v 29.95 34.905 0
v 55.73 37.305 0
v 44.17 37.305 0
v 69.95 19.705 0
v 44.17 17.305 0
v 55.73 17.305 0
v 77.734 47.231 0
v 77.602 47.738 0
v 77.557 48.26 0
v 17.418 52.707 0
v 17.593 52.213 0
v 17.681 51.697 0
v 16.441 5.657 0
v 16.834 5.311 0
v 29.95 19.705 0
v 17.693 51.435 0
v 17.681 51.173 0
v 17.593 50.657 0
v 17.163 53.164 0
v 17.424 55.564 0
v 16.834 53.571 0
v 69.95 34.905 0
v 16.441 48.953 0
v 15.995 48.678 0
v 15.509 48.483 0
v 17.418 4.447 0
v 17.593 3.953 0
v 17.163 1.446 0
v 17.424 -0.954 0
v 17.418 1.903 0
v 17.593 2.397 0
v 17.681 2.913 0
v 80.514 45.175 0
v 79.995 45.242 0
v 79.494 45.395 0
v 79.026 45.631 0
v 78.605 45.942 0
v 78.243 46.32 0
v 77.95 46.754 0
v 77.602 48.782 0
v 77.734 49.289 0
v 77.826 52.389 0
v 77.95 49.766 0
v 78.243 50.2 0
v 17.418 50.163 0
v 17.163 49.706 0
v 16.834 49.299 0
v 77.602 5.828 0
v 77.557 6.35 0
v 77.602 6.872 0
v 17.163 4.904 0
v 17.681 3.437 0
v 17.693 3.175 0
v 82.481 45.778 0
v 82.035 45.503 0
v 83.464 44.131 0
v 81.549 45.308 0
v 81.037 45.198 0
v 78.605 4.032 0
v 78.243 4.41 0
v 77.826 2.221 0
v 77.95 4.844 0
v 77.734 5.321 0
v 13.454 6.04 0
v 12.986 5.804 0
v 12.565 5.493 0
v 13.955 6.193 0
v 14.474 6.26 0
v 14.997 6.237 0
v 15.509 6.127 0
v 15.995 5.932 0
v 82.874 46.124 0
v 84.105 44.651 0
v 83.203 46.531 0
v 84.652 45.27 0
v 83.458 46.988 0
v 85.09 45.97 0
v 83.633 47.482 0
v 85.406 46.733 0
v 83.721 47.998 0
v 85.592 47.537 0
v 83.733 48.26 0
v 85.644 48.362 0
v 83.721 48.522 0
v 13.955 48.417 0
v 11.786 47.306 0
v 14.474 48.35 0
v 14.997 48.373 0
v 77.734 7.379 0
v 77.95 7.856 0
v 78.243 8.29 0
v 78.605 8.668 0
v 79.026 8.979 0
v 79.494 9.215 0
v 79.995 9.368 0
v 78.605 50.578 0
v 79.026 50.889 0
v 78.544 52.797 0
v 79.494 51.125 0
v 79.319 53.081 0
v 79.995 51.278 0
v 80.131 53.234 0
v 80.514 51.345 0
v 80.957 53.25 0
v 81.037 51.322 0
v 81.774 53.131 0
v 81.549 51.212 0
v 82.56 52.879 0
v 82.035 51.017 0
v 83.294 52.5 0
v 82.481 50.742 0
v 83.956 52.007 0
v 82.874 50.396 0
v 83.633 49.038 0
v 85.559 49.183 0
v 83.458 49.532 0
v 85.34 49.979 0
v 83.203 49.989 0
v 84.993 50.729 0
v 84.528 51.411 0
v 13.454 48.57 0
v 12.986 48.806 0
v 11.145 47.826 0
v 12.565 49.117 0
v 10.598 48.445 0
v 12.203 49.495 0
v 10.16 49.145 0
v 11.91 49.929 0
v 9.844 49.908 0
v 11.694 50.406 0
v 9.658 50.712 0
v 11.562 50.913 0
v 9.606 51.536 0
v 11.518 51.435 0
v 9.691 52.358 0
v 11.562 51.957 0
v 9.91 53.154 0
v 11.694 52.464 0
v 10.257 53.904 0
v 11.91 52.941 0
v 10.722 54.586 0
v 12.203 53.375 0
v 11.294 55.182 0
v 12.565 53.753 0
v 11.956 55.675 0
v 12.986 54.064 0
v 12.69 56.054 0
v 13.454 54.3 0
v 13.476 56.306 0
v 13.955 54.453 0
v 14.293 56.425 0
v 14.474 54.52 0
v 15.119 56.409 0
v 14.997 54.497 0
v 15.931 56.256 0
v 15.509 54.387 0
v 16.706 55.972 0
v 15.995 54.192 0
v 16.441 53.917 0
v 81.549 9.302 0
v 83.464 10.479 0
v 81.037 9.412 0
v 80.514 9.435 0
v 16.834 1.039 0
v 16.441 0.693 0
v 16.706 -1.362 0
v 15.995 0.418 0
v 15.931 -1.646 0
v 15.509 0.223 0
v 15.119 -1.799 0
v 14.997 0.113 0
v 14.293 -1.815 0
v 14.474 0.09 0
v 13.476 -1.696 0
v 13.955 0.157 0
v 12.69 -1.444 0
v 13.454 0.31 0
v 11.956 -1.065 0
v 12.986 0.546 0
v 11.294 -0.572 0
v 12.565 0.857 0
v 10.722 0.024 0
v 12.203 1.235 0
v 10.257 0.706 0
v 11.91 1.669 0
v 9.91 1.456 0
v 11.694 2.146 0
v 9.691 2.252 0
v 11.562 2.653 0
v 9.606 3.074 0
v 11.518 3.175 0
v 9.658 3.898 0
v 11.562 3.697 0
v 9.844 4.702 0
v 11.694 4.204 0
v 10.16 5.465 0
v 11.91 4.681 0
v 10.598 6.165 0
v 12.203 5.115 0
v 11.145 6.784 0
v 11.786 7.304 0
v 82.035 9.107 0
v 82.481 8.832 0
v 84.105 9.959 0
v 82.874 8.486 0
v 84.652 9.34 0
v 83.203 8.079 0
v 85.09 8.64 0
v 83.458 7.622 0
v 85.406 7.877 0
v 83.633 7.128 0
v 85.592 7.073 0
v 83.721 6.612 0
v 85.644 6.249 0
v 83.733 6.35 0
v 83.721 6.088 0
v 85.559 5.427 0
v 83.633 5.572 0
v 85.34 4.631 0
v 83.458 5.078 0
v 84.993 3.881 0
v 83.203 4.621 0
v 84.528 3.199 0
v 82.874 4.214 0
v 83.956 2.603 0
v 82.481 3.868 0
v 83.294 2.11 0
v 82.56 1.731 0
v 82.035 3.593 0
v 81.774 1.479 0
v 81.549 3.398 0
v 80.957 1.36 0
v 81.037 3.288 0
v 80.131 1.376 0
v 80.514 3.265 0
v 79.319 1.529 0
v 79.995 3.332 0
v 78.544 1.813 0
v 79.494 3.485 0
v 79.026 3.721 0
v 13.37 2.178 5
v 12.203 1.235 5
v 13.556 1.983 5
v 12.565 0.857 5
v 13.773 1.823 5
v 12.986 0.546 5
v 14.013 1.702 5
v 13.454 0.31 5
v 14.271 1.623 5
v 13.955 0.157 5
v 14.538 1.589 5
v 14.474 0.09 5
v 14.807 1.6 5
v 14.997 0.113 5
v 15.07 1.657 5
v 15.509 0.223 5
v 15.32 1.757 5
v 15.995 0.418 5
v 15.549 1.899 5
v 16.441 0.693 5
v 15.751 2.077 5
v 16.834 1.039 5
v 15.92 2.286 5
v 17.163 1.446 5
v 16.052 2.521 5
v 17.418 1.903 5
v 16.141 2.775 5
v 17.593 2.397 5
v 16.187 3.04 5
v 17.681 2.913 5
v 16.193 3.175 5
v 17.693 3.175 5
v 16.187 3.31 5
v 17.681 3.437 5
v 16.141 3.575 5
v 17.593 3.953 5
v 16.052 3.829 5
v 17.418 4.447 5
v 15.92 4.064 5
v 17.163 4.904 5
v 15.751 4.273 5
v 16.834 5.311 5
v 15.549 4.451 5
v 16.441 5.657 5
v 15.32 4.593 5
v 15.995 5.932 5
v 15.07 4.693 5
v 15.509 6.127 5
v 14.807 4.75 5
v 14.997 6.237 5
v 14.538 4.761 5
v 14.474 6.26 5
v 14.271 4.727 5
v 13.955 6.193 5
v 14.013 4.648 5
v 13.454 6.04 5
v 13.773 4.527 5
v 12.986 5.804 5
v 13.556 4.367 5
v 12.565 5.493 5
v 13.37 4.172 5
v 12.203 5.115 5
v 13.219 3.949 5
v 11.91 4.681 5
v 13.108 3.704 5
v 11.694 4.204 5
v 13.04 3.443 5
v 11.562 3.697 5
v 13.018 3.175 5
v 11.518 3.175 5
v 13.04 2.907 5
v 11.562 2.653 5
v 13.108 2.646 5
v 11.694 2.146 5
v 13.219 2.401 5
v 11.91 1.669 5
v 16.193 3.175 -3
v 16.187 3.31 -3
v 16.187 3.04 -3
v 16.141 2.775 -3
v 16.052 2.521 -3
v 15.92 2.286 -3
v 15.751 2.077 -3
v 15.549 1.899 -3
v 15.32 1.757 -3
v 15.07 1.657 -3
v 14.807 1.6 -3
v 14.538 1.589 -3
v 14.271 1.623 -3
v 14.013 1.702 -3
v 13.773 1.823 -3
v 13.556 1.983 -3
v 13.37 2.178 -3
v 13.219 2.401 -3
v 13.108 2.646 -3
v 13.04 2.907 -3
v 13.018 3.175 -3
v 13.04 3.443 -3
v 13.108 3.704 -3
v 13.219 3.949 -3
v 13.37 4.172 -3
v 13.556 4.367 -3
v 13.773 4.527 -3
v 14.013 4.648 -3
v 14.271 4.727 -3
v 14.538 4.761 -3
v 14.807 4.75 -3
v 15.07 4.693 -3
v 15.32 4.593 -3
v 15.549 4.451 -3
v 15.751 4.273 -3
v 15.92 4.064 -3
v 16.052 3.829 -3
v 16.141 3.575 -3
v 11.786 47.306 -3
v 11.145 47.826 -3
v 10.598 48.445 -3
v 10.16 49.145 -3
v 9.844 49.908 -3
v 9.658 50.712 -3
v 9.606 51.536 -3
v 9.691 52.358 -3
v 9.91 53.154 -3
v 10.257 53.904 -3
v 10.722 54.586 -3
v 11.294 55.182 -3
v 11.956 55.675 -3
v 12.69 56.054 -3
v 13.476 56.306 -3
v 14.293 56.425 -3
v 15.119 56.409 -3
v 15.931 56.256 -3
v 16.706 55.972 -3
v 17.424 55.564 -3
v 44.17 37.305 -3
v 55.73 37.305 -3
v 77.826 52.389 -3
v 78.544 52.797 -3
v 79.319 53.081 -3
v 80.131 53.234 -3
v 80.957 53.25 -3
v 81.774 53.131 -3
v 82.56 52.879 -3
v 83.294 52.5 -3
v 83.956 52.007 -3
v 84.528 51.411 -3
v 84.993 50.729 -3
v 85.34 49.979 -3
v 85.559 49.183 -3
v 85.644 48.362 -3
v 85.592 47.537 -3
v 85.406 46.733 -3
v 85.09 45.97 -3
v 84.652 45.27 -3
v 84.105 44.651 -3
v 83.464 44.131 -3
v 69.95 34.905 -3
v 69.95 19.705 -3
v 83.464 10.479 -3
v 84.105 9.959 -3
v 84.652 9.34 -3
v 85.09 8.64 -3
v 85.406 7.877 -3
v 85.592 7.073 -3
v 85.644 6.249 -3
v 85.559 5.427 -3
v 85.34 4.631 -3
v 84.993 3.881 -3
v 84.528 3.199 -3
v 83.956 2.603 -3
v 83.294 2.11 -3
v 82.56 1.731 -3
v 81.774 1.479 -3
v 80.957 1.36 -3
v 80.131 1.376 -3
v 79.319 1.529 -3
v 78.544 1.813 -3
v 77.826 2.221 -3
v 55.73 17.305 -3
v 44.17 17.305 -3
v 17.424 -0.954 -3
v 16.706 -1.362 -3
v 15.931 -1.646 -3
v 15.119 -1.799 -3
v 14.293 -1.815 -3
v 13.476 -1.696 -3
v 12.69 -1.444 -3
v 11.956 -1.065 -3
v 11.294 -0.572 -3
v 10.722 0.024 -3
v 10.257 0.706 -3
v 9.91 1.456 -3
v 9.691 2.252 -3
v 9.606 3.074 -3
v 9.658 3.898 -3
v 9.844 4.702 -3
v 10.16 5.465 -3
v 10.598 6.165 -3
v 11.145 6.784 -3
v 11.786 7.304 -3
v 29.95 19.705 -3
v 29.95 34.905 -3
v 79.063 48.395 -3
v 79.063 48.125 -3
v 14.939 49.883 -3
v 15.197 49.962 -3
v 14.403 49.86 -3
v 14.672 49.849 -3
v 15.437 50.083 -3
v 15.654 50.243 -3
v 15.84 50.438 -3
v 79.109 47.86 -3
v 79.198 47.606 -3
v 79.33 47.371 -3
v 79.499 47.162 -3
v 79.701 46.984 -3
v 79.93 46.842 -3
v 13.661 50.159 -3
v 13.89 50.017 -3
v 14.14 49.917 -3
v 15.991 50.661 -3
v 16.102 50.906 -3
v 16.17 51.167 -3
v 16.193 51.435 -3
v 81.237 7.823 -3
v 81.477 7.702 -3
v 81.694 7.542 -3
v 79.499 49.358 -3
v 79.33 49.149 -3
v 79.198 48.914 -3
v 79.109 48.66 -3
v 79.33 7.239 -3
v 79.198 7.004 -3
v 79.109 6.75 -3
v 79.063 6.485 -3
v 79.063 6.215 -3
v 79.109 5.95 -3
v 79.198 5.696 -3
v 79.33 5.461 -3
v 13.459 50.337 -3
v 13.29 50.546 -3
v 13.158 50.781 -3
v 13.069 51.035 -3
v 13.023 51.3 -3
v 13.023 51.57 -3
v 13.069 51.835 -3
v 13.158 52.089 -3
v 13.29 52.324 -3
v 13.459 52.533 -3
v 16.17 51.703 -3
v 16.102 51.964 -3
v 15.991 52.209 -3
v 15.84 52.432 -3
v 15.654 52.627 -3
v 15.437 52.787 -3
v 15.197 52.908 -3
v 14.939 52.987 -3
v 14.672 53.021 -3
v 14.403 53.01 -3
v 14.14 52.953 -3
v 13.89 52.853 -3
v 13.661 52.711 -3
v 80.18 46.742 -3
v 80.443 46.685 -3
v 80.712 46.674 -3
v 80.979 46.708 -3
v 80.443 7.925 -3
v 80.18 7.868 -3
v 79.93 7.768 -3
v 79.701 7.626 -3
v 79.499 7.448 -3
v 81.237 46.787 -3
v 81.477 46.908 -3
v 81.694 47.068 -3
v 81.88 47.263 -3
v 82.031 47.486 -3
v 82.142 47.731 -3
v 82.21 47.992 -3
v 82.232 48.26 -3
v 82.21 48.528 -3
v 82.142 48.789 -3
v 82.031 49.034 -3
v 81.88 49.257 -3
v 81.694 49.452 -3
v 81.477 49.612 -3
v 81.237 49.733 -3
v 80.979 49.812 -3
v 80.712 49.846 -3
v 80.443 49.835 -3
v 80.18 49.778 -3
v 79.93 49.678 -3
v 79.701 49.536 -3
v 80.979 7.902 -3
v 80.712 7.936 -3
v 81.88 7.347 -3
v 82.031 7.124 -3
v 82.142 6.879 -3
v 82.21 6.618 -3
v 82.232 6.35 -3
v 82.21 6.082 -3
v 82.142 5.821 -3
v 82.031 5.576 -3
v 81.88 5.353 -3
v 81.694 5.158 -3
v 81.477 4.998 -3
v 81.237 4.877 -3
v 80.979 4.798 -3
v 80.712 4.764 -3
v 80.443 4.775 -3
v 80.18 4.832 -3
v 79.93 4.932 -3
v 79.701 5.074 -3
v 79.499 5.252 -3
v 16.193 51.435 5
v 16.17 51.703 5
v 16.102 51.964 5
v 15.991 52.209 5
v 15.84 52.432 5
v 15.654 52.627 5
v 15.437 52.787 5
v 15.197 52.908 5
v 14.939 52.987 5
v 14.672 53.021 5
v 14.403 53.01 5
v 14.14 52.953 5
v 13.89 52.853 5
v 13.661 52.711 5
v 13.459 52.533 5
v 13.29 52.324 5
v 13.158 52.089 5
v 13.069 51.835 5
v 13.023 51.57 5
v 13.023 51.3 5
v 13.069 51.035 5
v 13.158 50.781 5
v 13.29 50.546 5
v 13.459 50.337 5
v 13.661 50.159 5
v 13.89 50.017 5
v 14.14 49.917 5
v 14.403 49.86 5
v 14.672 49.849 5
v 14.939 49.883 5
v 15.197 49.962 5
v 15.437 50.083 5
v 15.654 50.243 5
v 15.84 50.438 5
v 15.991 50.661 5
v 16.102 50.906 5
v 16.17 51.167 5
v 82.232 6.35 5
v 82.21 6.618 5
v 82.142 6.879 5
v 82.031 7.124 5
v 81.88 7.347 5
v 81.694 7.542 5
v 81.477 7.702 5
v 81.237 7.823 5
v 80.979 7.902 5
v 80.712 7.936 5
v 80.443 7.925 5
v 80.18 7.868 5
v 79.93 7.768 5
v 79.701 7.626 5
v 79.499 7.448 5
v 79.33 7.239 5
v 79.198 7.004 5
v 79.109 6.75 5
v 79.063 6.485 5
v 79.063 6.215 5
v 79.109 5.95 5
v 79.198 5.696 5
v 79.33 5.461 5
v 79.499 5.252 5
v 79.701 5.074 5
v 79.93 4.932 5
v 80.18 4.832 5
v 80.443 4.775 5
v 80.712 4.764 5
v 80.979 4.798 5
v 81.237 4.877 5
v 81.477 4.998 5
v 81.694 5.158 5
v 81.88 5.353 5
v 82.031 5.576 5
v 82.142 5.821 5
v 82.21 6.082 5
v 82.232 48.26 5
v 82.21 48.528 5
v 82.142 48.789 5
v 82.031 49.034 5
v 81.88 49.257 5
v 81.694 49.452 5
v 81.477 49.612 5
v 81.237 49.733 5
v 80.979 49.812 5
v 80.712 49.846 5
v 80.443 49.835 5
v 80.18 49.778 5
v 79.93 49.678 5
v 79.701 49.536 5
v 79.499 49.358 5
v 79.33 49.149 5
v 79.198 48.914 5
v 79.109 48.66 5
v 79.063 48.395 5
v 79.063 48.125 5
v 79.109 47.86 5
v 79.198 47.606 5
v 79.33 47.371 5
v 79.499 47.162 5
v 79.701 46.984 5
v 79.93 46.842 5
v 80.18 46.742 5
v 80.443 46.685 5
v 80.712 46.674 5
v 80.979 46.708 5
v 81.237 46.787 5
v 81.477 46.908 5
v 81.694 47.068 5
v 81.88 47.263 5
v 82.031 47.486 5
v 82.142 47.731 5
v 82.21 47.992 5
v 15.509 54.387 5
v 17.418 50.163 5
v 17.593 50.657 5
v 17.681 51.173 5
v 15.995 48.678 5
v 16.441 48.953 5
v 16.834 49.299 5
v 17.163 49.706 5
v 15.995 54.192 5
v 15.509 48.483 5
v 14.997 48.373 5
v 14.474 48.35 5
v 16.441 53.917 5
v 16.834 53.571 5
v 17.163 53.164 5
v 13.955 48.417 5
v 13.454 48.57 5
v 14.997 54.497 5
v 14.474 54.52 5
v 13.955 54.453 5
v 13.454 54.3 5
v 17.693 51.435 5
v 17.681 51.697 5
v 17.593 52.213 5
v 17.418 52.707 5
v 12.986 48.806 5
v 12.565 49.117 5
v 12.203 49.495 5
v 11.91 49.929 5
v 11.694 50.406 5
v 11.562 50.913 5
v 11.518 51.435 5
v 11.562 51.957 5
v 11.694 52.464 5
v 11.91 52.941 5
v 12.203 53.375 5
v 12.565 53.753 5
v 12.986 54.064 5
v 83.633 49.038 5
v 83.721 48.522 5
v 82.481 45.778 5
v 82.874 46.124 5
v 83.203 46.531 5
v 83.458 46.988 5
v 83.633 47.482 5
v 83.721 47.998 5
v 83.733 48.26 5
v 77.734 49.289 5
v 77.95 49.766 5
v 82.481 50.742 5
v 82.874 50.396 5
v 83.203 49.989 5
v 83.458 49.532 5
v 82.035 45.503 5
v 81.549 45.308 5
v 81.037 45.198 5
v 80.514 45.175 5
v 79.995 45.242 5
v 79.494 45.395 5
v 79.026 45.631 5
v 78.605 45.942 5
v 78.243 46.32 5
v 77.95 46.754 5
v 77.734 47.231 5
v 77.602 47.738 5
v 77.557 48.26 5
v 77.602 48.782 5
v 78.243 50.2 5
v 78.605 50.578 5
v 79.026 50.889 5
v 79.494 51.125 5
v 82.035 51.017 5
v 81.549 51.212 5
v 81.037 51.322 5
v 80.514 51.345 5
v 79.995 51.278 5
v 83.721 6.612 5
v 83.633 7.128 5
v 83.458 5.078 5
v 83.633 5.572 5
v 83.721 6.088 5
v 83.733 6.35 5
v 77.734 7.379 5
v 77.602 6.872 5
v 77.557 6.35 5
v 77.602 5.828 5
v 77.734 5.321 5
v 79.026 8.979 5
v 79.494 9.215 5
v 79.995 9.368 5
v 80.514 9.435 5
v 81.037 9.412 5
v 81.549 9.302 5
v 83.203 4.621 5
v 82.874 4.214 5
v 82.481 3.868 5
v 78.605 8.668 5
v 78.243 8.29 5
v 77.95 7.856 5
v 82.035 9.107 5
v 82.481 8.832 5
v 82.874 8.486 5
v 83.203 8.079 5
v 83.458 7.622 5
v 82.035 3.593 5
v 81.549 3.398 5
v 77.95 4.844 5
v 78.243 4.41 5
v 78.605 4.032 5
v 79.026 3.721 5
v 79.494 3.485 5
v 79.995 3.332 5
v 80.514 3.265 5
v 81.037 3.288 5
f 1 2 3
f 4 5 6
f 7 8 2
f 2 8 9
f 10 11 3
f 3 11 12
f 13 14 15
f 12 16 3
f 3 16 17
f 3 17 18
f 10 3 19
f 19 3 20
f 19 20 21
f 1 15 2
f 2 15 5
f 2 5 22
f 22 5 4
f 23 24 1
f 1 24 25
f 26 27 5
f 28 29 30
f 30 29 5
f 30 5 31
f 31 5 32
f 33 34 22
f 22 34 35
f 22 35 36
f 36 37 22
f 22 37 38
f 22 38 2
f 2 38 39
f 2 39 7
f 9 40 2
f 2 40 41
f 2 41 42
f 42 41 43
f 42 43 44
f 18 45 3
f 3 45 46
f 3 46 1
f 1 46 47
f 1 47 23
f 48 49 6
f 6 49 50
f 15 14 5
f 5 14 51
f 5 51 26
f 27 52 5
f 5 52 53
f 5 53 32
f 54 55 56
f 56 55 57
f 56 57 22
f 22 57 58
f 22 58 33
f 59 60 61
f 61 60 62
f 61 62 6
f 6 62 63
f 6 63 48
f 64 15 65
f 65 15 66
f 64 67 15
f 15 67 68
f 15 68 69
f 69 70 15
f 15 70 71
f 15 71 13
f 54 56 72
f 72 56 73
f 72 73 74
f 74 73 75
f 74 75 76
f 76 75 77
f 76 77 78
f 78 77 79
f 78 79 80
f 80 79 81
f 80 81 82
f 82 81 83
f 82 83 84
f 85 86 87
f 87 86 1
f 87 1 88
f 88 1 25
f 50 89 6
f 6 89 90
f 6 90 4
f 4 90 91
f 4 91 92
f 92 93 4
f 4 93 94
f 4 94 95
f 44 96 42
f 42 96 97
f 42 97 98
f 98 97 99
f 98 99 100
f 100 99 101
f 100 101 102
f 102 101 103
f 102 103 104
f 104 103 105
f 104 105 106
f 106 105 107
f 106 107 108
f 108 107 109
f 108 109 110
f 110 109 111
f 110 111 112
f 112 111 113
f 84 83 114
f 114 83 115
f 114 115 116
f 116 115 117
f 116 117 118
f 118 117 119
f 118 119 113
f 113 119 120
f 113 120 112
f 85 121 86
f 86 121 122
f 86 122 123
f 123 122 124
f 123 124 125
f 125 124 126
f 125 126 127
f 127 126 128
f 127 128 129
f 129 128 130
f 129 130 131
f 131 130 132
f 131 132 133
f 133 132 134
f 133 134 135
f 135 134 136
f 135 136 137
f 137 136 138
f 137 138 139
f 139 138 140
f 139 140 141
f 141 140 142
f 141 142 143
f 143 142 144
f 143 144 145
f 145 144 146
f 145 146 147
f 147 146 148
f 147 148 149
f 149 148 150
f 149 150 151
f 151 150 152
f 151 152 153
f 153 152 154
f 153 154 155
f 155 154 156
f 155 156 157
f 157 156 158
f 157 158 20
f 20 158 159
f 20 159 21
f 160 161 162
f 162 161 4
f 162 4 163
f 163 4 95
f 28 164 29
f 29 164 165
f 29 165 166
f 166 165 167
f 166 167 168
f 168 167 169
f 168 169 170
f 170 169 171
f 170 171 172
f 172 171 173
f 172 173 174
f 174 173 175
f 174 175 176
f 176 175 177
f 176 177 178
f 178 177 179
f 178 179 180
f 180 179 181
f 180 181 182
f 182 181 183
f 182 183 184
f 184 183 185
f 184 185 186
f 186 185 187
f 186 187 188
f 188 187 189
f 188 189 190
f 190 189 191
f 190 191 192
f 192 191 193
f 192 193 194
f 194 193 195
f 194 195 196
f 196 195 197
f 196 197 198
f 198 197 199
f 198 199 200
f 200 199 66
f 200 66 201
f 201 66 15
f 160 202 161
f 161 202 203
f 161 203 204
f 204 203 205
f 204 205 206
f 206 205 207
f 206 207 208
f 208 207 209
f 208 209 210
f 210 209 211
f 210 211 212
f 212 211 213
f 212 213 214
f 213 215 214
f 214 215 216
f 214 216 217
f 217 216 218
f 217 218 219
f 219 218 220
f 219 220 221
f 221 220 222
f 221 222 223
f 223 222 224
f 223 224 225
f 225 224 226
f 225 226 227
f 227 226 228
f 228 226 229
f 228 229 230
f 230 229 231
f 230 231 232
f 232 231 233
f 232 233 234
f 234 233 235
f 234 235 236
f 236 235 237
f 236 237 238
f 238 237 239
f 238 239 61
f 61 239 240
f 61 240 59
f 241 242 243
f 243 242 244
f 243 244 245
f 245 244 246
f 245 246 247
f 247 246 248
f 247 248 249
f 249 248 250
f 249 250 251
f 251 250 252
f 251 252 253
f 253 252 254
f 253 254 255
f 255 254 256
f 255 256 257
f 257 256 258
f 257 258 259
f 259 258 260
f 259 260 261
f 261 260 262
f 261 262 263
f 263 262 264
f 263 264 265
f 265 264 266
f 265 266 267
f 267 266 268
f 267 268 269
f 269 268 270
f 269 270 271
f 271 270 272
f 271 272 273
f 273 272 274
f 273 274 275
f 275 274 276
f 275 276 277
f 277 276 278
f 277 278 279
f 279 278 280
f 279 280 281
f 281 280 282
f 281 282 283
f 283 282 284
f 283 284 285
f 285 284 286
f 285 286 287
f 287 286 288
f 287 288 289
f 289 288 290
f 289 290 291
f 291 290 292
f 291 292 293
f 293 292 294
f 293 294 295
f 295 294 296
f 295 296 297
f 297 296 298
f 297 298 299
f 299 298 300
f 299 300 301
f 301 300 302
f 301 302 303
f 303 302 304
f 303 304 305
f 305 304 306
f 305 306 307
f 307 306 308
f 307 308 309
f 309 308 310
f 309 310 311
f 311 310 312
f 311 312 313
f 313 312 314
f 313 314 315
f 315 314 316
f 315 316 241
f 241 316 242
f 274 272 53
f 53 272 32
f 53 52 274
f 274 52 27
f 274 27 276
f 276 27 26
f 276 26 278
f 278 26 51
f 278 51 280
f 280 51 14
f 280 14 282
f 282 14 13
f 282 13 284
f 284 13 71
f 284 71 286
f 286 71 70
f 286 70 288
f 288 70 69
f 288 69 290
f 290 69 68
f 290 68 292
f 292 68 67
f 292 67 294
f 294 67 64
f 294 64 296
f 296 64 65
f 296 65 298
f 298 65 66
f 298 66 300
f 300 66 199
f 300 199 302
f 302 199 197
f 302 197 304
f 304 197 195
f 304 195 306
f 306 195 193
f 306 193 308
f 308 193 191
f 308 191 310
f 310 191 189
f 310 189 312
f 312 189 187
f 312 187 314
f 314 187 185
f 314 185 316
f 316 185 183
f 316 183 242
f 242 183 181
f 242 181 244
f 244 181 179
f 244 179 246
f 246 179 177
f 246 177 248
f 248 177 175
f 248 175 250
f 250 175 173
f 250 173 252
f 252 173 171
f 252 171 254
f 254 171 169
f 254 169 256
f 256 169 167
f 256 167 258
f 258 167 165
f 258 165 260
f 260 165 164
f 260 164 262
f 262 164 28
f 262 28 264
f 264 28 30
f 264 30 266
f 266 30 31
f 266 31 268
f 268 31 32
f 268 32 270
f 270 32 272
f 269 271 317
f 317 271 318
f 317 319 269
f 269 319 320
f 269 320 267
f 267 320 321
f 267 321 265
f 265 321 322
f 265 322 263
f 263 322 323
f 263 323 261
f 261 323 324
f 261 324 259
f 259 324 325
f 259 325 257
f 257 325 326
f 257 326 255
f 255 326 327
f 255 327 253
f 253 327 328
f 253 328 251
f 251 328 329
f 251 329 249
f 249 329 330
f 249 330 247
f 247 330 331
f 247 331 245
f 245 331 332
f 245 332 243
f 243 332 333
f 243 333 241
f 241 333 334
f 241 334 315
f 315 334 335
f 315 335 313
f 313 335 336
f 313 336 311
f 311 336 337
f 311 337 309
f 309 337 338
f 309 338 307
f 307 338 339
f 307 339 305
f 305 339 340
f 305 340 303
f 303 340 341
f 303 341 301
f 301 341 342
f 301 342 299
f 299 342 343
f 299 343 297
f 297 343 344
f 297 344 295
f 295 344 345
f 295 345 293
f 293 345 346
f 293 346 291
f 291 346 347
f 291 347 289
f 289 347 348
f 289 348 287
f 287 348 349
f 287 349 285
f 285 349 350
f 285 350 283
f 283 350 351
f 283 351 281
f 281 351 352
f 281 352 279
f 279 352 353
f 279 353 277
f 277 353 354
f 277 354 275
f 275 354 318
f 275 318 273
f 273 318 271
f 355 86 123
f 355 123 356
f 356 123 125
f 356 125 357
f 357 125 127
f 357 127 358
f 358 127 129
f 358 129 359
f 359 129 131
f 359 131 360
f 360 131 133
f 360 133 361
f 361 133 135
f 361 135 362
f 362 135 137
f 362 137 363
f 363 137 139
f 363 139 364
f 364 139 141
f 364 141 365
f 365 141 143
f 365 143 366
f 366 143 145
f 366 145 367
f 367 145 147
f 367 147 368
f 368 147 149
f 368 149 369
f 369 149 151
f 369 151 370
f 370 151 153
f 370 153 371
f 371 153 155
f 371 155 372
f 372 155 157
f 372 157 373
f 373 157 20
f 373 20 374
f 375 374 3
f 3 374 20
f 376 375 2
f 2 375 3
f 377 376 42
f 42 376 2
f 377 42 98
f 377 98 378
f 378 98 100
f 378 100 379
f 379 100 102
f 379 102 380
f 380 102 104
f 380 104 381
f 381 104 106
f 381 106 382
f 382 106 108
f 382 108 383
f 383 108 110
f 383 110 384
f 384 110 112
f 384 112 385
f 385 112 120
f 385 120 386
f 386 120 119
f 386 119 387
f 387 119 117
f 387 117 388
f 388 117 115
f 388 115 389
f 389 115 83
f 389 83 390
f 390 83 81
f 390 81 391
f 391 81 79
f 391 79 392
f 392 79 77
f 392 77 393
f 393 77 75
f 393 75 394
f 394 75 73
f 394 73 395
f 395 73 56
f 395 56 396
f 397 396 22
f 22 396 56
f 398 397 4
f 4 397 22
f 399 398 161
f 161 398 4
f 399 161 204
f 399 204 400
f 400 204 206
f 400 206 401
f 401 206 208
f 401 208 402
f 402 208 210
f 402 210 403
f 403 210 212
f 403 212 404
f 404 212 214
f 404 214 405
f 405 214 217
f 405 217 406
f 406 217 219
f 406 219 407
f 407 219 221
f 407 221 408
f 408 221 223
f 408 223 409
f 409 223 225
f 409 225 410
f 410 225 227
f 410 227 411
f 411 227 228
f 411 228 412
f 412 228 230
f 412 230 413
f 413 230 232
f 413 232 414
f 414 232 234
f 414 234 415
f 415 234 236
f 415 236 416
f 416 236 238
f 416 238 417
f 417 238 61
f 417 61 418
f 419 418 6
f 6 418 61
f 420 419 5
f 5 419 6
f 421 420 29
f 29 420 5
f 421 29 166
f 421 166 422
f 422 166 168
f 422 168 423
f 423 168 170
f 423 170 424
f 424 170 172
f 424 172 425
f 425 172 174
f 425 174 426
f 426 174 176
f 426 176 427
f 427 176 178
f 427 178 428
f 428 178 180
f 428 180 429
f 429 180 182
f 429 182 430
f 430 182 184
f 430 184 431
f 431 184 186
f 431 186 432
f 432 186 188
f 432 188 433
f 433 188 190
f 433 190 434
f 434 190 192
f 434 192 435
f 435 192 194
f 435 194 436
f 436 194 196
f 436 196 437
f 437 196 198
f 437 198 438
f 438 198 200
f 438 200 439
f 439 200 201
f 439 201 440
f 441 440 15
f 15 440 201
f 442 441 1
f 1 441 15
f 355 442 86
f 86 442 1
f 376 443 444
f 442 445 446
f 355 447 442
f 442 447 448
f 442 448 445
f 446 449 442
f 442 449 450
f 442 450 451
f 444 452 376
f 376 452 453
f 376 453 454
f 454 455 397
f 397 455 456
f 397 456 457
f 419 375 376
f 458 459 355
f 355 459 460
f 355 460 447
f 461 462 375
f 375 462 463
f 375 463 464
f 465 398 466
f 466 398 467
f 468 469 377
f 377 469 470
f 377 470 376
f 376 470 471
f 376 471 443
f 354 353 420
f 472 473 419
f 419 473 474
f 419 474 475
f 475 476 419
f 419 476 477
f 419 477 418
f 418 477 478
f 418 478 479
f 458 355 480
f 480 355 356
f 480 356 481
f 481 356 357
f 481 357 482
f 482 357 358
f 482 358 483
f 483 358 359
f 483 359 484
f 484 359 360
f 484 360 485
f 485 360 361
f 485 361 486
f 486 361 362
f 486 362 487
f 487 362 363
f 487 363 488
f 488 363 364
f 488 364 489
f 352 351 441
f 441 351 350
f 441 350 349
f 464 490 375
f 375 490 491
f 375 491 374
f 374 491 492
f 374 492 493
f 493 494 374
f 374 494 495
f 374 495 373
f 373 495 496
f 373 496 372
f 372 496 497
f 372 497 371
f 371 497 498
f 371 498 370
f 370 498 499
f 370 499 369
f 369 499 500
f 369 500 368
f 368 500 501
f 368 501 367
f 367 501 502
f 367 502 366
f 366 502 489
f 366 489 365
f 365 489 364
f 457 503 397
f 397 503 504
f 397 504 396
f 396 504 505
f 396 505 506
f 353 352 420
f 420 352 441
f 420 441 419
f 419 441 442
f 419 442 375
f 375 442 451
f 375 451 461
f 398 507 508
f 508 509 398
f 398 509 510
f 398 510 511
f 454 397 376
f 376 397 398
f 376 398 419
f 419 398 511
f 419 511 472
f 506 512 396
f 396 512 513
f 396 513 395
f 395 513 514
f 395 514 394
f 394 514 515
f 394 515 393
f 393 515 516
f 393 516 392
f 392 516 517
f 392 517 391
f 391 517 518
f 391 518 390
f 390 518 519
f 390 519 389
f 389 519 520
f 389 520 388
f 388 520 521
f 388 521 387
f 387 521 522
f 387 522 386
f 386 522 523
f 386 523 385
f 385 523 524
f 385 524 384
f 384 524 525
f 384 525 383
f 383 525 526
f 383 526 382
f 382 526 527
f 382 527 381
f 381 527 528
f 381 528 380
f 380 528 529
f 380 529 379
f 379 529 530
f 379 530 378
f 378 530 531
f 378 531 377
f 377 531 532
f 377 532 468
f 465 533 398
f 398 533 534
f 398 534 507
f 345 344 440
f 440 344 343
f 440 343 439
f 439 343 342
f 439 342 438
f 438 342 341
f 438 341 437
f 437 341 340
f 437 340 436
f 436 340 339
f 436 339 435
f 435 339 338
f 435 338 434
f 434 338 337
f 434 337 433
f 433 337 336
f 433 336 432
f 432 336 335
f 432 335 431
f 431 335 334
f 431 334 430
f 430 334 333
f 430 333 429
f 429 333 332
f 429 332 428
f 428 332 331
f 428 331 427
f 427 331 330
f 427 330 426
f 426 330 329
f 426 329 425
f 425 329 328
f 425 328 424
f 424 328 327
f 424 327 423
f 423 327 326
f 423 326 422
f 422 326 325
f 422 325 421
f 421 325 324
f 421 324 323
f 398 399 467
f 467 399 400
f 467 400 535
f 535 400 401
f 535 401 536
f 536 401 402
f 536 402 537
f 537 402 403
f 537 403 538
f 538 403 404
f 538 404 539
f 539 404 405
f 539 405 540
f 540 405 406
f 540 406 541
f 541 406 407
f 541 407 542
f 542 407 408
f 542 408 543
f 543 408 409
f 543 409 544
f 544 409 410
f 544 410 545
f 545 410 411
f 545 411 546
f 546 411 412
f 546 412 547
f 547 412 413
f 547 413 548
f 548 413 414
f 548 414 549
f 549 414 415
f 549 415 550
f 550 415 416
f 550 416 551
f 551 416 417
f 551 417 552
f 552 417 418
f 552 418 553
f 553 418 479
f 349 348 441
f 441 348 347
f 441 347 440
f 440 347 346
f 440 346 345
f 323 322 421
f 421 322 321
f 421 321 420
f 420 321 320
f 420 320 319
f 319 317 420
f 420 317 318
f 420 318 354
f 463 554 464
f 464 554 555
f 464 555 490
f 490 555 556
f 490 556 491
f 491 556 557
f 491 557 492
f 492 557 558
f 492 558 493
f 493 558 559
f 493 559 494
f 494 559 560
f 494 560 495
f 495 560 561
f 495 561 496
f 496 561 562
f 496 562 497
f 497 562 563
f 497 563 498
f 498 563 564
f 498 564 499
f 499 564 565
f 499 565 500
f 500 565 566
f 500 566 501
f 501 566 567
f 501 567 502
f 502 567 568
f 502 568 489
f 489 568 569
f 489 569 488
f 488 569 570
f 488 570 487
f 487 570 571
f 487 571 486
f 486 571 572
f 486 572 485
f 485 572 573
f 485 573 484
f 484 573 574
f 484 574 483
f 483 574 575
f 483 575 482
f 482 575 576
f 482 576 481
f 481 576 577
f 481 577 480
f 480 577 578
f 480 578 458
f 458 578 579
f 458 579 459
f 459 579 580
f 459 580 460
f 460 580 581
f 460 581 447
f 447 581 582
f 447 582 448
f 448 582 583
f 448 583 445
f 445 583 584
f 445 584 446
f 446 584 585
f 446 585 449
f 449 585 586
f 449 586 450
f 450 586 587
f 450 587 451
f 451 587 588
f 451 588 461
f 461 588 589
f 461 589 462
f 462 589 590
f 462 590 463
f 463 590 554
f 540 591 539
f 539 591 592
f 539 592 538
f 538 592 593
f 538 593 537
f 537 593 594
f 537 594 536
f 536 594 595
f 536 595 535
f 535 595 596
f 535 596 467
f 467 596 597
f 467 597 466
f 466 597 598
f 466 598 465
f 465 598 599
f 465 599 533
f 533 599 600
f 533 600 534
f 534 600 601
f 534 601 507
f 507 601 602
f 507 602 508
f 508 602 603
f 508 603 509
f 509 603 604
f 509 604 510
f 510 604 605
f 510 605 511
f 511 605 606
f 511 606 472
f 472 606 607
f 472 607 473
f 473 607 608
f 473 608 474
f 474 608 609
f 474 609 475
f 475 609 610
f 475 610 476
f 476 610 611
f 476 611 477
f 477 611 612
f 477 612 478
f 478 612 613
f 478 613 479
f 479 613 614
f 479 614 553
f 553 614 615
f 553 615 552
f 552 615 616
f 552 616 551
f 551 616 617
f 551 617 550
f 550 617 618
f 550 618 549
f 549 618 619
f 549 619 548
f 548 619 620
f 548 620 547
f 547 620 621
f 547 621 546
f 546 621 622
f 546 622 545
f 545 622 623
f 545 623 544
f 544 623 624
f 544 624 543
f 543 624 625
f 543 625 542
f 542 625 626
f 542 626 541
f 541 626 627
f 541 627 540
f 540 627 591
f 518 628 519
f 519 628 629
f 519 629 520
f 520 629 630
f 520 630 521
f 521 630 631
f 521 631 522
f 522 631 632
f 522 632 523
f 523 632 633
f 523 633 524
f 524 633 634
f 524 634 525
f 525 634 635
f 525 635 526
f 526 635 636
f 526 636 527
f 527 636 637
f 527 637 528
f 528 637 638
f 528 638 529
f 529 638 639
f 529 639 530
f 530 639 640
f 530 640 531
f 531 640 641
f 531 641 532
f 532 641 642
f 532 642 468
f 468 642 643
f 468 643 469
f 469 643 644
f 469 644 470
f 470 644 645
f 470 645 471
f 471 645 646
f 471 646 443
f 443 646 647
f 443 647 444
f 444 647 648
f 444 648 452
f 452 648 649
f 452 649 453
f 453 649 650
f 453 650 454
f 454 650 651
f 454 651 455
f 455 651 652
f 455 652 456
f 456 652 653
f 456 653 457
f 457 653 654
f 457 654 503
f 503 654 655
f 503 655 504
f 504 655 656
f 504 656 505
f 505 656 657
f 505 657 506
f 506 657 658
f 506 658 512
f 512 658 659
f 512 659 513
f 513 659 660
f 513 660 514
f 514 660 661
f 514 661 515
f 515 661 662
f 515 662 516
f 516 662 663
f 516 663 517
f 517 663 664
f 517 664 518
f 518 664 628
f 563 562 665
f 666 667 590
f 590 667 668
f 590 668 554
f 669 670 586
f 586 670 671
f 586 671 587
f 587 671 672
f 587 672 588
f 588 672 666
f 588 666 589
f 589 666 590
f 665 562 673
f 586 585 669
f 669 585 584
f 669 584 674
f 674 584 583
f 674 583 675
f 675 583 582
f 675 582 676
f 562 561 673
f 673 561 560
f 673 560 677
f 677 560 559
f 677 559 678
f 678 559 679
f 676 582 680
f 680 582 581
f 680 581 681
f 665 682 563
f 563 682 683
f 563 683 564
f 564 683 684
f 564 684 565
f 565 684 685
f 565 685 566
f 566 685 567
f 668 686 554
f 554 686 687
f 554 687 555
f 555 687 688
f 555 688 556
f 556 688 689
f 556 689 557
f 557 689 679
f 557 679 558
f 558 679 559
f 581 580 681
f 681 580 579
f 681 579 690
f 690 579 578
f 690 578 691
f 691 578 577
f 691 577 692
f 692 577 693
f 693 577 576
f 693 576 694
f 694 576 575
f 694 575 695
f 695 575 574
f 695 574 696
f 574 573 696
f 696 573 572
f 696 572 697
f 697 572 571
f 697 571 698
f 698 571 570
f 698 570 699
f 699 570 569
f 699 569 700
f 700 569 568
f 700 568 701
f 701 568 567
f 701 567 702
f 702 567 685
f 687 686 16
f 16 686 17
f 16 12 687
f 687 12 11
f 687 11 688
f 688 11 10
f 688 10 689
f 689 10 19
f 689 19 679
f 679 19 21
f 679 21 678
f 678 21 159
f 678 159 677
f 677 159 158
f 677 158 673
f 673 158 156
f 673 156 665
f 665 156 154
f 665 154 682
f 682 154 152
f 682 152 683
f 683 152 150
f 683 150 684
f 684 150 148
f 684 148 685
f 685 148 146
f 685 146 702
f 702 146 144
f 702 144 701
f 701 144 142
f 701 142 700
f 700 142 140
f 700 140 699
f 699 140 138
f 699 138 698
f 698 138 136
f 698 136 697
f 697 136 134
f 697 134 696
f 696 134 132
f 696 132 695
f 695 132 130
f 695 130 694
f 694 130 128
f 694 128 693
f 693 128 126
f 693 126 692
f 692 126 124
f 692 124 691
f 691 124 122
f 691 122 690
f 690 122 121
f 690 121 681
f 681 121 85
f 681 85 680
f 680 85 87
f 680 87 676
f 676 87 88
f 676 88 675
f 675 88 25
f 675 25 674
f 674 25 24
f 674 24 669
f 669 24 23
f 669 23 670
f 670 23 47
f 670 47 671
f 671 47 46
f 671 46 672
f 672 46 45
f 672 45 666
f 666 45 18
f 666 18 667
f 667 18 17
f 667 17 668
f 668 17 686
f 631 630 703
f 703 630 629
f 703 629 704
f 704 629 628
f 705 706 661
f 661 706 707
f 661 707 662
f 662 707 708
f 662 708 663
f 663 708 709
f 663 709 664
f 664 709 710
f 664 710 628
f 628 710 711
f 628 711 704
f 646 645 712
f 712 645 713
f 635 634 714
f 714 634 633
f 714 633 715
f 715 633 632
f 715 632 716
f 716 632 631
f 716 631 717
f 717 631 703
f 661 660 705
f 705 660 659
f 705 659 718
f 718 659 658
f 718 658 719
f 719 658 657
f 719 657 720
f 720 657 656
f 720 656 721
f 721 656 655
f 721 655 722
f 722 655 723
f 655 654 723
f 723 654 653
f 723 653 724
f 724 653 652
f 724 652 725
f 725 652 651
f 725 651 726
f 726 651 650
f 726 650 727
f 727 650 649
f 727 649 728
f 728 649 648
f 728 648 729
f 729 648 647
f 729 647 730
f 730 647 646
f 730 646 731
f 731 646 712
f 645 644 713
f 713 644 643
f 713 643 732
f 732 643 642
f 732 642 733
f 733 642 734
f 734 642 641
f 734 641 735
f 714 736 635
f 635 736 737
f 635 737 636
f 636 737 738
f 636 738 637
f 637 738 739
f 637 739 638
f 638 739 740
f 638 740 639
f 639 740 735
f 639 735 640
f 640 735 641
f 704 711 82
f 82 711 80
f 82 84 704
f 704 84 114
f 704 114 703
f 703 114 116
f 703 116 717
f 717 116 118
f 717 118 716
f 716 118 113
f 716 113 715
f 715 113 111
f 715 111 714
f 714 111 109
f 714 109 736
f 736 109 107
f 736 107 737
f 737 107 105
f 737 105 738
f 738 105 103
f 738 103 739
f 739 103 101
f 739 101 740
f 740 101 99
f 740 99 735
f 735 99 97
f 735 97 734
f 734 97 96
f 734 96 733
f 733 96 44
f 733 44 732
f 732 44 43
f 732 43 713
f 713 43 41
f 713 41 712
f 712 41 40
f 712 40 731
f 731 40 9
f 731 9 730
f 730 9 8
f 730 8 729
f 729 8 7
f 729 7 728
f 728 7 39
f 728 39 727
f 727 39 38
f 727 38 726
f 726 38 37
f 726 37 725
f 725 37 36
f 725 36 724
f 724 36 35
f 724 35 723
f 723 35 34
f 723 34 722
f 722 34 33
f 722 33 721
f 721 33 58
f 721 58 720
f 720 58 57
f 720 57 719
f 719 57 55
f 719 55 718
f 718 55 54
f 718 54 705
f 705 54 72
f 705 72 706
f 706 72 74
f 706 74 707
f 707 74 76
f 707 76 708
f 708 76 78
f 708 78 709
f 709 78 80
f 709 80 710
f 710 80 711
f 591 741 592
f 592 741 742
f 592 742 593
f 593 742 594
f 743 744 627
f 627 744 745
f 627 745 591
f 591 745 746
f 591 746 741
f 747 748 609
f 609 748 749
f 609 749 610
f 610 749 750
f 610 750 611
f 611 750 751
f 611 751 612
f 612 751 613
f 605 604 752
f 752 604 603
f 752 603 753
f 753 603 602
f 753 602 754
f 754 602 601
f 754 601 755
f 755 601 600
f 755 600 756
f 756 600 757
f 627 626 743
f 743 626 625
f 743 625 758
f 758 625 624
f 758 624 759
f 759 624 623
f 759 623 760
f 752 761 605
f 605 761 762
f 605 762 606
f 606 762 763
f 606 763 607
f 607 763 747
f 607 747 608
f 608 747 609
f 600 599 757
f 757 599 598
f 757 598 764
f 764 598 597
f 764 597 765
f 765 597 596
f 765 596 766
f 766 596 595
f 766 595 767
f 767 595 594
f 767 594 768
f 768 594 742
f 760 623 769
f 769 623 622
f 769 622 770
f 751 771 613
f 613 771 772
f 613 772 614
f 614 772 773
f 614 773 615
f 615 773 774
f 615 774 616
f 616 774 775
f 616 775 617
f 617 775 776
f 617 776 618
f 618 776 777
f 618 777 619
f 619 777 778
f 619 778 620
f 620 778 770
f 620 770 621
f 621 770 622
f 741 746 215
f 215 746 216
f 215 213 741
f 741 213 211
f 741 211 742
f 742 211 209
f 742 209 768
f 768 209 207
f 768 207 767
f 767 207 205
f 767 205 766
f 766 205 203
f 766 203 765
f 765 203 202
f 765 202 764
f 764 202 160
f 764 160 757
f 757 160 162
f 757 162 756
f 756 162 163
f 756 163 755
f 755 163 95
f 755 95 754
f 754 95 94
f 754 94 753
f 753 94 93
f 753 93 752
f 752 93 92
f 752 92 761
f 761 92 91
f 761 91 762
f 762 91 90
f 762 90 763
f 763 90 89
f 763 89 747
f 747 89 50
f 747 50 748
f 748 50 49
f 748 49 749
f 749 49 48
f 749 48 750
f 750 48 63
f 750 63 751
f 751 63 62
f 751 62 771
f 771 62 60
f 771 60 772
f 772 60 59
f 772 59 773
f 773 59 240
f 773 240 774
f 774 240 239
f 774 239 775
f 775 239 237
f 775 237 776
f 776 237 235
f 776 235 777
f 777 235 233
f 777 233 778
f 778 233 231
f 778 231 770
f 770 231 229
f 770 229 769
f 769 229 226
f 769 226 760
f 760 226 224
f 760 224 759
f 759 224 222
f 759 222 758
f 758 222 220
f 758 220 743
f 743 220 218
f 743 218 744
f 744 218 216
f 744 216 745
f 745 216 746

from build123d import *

# Parameters (mm, degrees)
SKETCH4_R             = 3.0875
SKETCH4_R_2           = 1.5875
BOSS_EXTRUDE1_DEPTH   = 5
BOSS_EXTRUDE1_2_DEPTH = 5
BOSS_EXTRUDE1_3_DEPTH = 5
BOSS_EXTRUDE1_4_DEPTH = 5
COMBINATION_R         = 1.5875
BOSS_EXTRUDE2_DEPTH   = 3


with BuildPart() as part:
    # Sketch4 → Boss-Extrude1 (new body)
    with BuildSketch(Plane.XY):
        with Locations((14.605, 3.175)):
            Circle(SKETCH4_R)
        with Locations((14.605, 3.175)):
            Circle(SKETCH4_R_2, mode=Mode.SUBTRACT)
    extrude(amount=BOSS_EXTRUDE1_DEPTH)



with BuildPart() as body_2:
    # Sketch4 → Boss-Extrude1 2 (new body)
    with BuildSketch(Plane.XY):
        with Locations((14.605, 51.435)):
            Circle(SKETCH4_R)
        with Locations((14.605, 51.435)):
            Circle(SKETCH4_R_2, mode=Mode.SUBTRACT)
    extrude(amount=BOSS_EXTRUDE1_2_DEPTH)


with BuildPart() as body_3:
    # Sketch4 → Boss-Extrude1 3 (new body)
    with BuildSketch(Plane.XY):
        with Locations((80.645, 48.26)):
            Circle(SKETCH4_R)
        with Locations((80.645, 48.26)):
            Circle(SKETCH4_R_2, mode=Mode.SUBTRACT)
    extrude(amount=BOSS_EXTRUDE1_3_DEPTH)


with BuildPart() as body_4:
    # Sketch4 → Boss-Extrude1 4 (new body)
    with BuildSketch(Plane.XY):
        with Locations((80.645, 6.35)):
            Circle(SKETCH4_R)
        with Locations((80.645, 6.35)):
            Circle(SKETCH4_R_2, mode=Mode.SUBTRACT)
    extrude(amount=BOSS_EXTRUDE1_4_DEPTH)


with BuildPart() as part_1:
    add(part.part)

    add(body_2.part)  # Boss-Extrude2 merges body 2

    add(body_3.part)  # Boss-Extrude2 merges body 3

    add(body_4.part)  # Boss-Extrude2 merges body 4
    # combination → Boss-Extrude2 (add)
    with BuildSketch(Plane.XY):
        with BuildLine():
            Line((17.424147765, 55.564455882), (44.170393, 37.305))
            Line((44.170393, 37.305), (49.950352113, 37.305))
            Line((49.950352113, 37.305), (55.730311225, 37.305))
            Line((55.730311225, 37.305), (77.825852235, 52.389455882))
            ThreePointArc((77.825852235, 52.389455882), (84.774455882, 51.079147765), (83.464147765, 44.130544118))
            Line((83.464147765, 44.130544118), (69.950352113, 34.904779779))
            Line((69.950352113, 34.904779779), (69.950352113, 19.705220221))
            Line((69.950352113, 19.705220221), (83.464147765, 10.479455882))
            ThreePointArc((83.464147765, 10.479455882), (84.774455882, 3.530852235), (77.825852235, 2.220544118))
            Line((77.825852235, 2.220544118), (55.730311225, 17.305))
            Line((55.730311225, 17.305), (49.950352113, 17.305))
            Line((49.950352113, 17.305), (44.170393, 17.305))
            Line((44.170393, 17.305), (17.424147765, -0.954455882))
            ThreePointArc((17.424147765, -0.954455882), (10.475544118, 0.355852235), (11.785852235, 7.304455882))
            Line((11.785852235, 7.304455882), (29.950352113, 19.705220221))
            Line((29.950352113, 19.705220221), (29.950352113, 34.904779779))
            Line((29.950352113, 34.904779779), (11.785852235, 47.305544118))
            ThreePointArc((11.785852235, 47.305544118), (10.475544118, 54.254147765), (17.424147765, 55.564455882))
        make_face()
        with Locations((14.605, 51.435)):
            Circle(COMBINATION_R, mode=Mode.SUBTRACT)
        with Locations((14.605, 3.175)):
            Circle(COMBINATION_R, mode=Mode.SUBTRACT)
        with Locations((80.645, 6.35)):
            Circle(COMBINATION_R, mode=Mode.SUBTRACT)
        with Locations((80.645, 48.26)):
            Circle(COMBINATION_R, mode=Mode.SUBTRACT)
    extrude(amount=-BOSS_EXTRUDE2_DEPTH)


solid = part_1.part
